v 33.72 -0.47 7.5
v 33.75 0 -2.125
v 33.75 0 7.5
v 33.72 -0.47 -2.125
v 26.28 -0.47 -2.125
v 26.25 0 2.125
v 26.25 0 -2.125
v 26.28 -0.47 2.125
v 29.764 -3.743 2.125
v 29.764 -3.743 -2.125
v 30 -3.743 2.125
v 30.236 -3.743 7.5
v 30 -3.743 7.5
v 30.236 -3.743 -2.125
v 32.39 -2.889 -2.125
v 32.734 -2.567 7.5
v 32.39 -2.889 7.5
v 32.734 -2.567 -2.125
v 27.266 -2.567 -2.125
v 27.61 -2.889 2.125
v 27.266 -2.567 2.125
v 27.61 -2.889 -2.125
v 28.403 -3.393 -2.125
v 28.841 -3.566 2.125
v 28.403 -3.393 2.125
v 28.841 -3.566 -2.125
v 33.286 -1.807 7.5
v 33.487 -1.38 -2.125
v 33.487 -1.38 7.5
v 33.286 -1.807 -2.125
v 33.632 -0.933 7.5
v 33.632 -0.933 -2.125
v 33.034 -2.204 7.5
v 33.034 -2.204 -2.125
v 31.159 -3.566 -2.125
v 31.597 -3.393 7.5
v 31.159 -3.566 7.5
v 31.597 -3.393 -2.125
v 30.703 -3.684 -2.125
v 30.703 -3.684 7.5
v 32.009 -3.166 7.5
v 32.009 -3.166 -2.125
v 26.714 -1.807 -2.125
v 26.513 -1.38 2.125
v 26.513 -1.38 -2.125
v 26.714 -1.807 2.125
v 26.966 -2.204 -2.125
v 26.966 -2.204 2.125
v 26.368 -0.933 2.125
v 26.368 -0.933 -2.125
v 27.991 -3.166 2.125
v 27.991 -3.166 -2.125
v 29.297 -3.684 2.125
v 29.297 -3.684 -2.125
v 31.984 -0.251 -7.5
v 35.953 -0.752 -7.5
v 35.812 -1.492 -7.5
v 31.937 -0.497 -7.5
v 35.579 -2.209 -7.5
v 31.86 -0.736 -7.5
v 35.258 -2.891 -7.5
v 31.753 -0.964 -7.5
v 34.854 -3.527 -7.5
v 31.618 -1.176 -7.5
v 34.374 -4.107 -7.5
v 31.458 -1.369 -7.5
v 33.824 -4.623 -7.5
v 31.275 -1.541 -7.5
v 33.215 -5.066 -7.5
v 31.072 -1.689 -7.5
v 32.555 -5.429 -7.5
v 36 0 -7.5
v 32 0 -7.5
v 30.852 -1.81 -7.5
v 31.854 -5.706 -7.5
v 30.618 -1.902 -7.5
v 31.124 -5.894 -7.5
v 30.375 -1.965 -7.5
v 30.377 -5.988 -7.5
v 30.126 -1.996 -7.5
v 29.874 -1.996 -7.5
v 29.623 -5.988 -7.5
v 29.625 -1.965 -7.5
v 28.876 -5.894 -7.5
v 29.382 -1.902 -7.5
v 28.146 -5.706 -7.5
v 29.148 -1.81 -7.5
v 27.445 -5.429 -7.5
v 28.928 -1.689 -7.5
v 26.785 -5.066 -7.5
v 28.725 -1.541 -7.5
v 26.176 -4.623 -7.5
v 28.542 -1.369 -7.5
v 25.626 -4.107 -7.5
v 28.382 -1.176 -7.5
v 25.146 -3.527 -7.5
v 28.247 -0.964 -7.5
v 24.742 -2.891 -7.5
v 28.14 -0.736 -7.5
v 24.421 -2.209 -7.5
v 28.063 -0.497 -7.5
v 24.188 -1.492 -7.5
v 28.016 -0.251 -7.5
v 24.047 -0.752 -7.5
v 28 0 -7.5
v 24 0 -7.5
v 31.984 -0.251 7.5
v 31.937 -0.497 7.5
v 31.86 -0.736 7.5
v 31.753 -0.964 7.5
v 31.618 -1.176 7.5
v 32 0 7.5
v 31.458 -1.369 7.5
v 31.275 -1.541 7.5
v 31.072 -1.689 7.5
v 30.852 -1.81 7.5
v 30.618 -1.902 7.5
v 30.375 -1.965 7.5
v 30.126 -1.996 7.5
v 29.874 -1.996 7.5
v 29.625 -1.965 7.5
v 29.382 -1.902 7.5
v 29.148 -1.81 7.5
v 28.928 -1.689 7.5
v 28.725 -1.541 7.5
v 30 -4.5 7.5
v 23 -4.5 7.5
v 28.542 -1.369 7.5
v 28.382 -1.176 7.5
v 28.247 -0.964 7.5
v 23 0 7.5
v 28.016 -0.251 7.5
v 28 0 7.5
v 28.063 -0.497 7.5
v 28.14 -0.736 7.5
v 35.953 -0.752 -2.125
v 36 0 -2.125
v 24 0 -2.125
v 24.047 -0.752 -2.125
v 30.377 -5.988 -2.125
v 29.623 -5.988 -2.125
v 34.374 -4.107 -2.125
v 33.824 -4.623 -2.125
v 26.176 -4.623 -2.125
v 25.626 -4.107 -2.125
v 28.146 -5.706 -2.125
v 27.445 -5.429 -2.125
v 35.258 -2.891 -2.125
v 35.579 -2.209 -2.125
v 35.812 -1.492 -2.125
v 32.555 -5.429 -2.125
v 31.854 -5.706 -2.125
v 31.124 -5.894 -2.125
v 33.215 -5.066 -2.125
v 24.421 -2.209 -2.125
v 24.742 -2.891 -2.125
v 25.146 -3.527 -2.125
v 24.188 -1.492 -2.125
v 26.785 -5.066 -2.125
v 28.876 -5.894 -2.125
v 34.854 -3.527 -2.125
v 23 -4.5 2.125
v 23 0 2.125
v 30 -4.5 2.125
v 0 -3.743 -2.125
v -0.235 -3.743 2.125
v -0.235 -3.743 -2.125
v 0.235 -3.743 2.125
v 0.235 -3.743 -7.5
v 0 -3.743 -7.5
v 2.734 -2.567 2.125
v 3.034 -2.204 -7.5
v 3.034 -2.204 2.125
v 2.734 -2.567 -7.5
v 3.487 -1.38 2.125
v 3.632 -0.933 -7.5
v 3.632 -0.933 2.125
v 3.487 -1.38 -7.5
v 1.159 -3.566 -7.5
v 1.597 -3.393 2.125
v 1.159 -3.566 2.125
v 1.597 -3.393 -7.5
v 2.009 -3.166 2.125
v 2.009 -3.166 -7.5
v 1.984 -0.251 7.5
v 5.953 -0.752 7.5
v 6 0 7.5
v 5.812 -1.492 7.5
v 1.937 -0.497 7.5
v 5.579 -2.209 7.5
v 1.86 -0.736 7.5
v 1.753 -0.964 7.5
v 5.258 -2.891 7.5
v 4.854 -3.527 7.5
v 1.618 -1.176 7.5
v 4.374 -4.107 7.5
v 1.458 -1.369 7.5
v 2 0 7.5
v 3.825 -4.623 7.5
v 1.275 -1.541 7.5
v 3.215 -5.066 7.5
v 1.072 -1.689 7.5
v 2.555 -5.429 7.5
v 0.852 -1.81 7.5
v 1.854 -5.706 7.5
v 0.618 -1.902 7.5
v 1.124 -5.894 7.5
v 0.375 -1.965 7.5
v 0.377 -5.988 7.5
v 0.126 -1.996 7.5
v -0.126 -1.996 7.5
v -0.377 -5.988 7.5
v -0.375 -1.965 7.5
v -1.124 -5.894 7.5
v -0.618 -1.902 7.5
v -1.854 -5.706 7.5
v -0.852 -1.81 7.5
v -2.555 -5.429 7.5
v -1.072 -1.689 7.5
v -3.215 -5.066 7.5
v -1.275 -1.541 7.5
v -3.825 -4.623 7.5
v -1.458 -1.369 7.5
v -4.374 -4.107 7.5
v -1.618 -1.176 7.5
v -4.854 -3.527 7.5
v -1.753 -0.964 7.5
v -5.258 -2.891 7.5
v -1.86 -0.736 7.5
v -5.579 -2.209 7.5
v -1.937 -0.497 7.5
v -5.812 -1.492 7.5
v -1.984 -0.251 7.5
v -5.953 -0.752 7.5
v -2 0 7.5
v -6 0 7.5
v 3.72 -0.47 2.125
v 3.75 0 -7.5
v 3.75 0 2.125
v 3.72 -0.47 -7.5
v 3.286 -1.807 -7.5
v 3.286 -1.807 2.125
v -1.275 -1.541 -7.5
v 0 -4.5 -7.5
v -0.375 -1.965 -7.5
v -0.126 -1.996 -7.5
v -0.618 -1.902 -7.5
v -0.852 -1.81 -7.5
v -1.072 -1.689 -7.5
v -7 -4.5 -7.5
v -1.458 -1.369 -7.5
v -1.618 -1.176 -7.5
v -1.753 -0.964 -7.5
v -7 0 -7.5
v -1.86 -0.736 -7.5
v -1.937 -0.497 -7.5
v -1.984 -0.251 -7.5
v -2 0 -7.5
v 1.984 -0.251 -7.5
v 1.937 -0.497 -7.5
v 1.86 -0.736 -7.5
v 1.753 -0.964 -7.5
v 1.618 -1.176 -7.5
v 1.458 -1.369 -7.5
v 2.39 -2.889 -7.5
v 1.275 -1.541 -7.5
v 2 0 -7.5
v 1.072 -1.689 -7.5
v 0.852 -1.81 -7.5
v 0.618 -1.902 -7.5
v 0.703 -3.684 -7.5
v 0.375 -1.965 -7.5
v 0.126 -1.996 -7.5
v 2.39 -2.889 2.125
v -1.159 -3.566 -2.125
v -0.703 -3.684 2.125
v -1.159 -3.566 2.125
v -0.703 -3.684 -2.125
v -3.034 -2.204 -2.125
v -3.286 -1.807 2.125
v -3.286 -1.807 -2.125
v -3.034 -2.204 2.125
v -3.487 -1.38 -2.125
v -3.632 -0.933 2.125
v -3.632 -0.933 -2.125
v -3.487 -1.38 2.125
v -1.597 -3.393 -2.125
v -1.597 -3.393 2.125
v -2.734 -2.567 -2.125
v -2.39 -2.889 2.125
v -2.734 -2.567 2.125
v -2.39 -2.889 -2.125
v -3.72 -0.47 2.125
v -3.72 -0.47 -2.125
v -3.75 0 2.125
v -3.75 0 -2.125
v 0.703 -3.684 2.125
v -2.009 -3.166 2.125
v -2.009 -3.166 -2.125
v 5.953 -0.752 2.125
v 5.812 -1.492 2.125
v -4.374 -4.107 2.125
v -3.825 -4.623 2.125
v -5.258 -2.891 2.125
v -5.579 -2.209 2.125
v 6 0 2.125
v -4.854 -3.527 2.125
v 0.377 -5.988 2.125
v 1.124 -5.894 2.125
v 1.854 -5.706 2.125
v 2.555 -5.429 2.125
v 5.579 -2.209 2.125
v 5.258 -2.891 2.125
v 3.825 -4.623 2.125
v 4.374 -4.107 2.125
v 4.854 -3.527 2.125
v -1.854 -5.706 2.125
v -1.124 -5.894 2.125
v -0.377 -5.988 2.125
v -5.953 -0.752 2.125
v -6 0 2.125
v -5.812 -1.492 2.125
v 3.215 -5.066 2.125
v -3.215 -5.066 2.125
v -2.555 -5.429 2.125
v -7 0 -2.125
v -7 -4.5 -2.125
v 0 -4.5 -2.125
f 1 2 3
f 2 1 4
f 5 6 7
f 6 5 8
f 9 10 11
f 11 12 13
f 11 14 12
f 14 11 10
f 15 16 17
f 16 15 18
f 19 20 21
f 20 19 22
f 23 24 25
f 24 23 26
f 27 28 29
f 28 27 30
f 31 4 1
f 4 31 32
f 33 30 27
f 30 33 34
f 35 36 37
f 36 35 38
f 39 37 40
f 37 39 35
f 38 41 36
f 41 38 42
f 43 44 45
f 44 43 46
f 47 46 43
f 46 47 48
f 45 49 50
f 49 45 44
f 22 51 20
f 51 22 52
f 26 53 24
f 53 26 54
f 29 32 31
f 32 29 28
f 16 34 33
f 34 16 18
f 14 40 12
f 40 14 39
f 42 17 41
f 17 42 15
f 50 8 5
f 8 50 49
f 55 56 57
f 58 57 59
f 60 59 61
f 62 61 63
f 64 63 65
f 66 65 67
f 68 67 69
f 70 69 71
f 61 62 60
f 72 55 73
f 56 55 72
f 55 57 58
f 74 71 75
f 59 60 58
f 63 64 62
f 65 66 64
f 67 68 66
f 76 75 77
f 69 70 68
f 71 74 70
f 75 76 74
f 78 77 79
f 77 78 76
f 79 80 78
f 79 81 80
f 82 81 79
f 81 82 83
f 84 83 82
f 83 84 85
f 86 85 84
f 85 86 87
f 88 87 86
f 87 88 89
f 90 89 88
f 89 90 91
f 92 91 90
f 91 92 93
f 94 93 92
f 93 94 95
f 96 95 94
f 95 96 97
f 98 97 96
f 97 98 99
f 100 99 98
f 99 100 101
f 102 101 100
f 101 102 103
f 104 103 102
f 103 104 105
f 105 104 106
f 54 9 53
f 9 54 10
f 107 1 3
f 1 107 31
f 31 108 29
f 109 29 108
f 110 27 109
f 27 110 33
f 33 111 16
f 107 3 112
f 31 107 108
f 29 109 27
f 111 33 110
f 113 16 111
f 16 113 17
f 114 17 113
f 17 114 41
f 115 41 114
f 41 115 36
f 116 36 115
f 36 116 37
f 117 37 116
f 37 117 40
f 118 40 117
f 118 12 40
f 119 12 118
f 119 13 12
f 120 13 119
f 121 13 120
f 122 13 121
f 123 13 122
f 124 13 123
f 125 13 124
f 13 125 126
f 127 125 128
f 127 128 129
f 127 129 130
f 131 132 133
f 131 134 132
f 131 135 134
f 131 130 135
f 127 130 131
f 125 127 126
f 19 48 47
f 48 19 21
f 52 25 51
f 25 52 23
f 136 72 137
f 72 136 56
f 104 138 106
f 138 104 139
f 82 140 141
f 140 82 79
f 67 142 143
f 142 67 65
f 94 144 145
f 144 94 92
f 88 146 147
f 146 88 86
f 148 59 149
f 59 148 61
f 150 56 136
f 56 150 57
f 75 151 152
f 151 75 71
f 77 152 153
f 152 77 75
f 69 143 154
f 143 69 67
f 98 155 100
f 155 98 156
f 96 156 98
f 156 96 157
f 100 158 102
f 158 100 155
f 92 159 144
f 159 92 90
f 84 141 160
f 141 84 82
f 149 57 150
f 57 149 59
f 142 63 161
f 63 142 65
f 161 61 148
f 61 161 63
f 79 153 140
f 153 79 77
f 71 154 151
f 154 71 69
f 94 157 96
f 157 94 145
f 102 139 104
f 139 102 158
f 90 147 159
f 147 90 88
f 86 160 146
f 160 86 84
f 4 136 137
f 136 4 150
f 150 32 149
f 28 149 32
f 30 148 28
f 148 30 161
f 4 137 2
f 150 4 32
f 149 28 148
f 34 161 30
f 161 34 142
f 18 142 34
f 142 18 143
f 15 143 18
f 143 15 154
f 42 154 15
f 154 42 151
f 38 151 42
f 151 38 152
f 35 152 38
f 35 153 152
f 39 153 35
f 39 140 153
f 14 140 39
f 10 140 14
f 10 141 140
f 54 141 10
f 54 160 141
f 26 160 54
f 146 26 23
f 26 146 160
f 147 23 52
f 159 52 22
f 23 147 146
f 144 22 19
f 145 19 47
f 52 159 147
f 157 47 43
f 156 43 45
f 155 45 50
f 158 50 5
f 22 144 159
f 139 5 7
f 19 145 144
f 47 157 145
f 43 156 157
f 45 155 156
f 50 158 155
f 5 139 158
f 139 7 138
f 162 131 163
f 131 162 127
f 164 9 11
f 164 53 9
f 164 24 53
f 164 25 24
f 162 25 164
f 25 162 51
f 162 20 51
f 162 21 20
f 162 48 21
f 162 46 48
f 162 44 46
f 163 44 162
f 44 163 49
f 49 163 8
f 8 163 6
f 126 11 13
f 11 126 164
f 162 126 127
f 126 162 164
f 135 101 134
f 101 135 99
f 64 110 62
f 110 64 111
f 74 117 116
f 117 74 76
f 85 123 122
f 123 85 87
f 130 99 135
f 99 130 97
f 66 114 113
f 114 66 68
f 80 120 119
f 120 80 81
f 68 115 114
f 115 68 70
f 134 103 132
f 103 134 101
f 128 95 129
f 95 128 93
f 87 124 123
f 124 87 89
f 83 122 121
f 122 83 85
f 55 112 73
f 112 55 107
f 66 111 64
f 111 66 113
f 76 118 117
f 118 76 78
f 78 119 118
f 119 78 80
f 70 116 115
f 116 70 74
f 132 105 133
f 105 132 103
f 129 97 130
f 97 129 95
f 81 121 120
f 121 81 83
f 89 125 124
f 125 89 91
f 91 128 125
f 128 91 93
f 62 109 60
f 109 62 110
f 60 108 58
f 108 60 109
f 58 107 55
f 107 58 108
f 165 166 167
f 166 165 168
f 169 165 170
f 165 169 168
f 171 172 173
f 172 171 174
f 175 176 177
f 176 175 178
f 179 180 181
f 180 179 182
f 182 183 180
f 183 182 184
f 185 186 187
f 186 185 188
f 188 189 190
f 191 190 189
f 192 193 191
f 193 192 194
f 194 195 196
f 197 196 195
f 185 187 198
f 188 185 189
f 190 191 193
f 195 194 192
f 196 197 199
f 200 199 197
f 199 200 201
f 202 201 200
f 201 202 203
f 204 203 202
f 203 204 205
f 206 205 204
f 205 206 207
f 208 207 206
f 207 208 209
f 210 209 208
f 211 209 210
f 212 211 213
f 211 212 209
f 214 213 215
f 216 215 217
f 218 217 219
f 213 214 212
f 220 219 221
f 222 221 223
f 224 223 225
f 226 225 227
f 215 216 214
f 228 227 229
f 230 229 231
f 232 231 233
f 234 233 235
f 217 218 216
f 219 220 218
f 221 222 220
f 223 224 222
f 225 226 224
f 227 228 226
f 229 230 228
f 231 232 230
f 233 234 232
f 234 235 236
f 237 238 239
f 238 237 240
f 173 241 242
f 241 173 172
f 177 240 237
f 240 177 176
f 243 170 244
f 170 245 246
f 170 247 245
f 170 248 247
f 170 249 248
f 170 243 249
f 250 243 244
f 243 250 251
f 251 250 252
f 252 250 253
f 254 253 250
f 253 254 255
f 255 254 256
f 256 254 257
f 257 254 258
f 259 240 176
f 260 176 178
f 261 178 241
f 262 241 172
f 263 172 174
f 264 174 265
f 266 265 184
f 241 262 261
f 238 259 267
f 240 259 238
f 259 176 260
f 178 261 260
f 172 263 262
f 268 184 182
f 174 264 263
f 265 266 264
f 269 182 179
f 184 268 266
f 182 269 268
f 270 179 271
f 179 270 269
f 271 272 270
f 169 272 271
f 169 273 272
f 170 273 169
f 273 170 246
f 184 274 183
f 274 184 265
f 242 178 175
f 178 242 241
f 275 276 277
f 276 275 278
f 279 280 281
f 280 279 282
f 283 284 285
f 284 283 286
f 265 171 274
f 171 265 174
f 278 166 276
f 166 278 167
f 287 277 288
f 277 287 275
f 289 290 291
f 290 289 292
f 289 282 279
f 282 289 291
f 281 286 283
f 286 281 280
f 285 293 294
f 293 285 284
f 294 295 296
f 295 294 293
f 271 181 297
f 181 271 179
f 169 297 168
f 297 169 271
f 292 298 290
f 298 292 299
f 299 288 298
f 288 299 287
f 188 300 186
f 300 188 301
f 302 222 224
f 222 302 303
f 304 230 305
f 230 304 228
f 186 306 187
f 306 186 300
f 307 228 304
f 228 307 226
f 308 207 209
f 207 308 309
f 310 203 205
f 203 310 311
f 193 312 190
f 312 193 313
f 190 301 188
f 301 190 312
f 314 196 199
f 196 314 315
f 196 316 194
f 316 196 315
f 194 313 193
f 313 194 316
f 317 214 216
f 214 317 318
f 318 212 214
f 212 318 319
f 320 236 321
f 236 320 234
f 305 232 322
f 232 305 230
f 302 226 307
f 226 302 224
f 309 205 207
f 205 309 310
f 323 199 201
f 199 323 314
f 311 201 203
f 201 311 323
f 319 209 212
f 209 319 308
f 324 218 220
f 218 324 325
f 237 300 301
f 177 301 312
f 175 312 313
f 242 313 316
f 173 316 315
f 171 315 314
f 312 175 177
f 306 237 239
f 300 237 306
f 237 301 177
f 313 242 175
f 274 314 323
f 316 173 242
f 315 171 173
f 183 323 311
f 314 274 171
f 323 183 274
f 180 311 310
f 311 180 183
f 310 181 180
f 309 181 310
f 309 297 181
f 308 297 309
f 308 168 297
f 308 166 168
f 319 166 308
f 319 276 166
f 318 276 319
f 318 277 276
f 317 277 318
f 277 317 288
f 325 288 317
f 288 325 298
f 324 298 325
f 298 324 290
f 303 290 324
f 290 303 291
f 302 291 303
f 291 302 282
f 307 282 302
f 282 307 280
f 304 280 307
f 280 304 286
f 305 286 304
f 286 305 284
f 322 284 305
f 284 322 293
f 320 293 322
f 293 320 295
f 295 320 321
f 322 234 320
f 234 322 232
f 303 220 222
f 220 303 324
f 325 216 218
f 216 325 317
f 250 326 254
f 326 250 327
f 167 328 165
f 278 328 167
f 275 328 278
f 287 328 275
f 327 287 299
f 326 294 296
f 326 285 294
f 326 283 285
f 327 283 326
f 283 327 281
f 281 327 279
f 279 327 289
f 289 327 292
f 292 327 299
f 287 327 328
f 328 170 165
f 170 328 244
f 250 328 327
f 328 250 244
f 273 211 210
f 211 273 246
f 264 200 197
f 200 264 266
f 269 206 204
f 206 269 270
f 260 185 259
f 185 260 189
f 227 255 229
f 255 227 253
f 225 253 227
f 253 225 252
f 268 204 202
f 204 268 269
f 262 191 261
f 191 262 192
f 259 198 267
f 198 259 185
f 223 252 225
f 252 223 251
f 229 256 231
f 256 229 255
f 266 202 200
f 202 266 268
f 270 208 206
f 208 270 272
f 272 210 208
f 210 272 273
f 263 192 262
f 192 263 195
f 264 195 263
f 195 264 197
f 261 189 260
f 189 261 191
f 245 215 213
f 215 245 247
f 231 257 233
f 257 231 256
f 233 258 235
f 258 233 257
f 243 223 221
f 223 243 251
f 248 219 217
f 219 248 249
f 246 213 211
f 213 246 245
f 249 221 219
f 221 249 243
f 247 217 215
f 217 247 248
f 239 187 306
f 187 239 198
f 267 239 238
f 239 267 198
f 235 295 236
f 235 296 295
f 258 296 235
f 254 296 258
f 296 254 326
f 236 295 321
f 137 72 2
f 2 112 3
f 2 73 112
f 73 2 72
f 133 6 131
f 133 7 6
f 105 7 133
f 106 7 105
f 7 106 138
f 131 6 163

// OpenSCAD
$fn = 50;


difference() {
	union() {
		translate(v = [30, 0, 0]) {
			rotate(a = [180, 0, 0]) {
				difference() {
					union() {
						translate(v = [0, 0, -7.5000000000]) {
							cylinder(h = 15, r = 3.7500000000);
						}
						translate(v = [0, 0, 2.1250000000]) {
							cylinder(h = 5.3750000000, r = 6.0000000000);
						}
						translate(v = [-7.0000000000, -4.5000000000, -7.5000000000]) {
							cube(size = [7.0000000000, 9, 5.3750000000]);
						}
					}
					union() {
						translate(v = [0, 0, -7.5000000000]) {
							cylinder(h = 15, r = 2.0000000000);
						}
					}
				}
			}
		}
		translate(v = [0, 0, -7.5000000000]) {
			cylinder(h = 15, r = 3.7500000000);
		}
		translate(v = [0, 0, 2.1250000000]) {
			cylinder(h = 5.3750000000, r = 6.0000000000);
		}
		translate(v = [-7.0000000000, -4.5000000000, -7.5000000000]) {
			cube(size = [7.0000000000, 9, 5.3750000000]);
		}
	}
	union() {
		translate(v = [0, 0, -7.5000000000]) {
			cylinder(h = 15, r = 2.0000000000);
		}
		translate(v = [-250.0000000000, 0, -250.0000000000]) {
			cube(size = [500, 500, 500]);
		}
		translate(v = [-250.0000000000, 0, -250.0000000000]) {
			cube(size = [500, 500, 500]);
		}
		translate(v = [-250.0000000000, 0, -250.0000000000]) {
			cube(size = [500, 500, 500]);
		}
	}
}
